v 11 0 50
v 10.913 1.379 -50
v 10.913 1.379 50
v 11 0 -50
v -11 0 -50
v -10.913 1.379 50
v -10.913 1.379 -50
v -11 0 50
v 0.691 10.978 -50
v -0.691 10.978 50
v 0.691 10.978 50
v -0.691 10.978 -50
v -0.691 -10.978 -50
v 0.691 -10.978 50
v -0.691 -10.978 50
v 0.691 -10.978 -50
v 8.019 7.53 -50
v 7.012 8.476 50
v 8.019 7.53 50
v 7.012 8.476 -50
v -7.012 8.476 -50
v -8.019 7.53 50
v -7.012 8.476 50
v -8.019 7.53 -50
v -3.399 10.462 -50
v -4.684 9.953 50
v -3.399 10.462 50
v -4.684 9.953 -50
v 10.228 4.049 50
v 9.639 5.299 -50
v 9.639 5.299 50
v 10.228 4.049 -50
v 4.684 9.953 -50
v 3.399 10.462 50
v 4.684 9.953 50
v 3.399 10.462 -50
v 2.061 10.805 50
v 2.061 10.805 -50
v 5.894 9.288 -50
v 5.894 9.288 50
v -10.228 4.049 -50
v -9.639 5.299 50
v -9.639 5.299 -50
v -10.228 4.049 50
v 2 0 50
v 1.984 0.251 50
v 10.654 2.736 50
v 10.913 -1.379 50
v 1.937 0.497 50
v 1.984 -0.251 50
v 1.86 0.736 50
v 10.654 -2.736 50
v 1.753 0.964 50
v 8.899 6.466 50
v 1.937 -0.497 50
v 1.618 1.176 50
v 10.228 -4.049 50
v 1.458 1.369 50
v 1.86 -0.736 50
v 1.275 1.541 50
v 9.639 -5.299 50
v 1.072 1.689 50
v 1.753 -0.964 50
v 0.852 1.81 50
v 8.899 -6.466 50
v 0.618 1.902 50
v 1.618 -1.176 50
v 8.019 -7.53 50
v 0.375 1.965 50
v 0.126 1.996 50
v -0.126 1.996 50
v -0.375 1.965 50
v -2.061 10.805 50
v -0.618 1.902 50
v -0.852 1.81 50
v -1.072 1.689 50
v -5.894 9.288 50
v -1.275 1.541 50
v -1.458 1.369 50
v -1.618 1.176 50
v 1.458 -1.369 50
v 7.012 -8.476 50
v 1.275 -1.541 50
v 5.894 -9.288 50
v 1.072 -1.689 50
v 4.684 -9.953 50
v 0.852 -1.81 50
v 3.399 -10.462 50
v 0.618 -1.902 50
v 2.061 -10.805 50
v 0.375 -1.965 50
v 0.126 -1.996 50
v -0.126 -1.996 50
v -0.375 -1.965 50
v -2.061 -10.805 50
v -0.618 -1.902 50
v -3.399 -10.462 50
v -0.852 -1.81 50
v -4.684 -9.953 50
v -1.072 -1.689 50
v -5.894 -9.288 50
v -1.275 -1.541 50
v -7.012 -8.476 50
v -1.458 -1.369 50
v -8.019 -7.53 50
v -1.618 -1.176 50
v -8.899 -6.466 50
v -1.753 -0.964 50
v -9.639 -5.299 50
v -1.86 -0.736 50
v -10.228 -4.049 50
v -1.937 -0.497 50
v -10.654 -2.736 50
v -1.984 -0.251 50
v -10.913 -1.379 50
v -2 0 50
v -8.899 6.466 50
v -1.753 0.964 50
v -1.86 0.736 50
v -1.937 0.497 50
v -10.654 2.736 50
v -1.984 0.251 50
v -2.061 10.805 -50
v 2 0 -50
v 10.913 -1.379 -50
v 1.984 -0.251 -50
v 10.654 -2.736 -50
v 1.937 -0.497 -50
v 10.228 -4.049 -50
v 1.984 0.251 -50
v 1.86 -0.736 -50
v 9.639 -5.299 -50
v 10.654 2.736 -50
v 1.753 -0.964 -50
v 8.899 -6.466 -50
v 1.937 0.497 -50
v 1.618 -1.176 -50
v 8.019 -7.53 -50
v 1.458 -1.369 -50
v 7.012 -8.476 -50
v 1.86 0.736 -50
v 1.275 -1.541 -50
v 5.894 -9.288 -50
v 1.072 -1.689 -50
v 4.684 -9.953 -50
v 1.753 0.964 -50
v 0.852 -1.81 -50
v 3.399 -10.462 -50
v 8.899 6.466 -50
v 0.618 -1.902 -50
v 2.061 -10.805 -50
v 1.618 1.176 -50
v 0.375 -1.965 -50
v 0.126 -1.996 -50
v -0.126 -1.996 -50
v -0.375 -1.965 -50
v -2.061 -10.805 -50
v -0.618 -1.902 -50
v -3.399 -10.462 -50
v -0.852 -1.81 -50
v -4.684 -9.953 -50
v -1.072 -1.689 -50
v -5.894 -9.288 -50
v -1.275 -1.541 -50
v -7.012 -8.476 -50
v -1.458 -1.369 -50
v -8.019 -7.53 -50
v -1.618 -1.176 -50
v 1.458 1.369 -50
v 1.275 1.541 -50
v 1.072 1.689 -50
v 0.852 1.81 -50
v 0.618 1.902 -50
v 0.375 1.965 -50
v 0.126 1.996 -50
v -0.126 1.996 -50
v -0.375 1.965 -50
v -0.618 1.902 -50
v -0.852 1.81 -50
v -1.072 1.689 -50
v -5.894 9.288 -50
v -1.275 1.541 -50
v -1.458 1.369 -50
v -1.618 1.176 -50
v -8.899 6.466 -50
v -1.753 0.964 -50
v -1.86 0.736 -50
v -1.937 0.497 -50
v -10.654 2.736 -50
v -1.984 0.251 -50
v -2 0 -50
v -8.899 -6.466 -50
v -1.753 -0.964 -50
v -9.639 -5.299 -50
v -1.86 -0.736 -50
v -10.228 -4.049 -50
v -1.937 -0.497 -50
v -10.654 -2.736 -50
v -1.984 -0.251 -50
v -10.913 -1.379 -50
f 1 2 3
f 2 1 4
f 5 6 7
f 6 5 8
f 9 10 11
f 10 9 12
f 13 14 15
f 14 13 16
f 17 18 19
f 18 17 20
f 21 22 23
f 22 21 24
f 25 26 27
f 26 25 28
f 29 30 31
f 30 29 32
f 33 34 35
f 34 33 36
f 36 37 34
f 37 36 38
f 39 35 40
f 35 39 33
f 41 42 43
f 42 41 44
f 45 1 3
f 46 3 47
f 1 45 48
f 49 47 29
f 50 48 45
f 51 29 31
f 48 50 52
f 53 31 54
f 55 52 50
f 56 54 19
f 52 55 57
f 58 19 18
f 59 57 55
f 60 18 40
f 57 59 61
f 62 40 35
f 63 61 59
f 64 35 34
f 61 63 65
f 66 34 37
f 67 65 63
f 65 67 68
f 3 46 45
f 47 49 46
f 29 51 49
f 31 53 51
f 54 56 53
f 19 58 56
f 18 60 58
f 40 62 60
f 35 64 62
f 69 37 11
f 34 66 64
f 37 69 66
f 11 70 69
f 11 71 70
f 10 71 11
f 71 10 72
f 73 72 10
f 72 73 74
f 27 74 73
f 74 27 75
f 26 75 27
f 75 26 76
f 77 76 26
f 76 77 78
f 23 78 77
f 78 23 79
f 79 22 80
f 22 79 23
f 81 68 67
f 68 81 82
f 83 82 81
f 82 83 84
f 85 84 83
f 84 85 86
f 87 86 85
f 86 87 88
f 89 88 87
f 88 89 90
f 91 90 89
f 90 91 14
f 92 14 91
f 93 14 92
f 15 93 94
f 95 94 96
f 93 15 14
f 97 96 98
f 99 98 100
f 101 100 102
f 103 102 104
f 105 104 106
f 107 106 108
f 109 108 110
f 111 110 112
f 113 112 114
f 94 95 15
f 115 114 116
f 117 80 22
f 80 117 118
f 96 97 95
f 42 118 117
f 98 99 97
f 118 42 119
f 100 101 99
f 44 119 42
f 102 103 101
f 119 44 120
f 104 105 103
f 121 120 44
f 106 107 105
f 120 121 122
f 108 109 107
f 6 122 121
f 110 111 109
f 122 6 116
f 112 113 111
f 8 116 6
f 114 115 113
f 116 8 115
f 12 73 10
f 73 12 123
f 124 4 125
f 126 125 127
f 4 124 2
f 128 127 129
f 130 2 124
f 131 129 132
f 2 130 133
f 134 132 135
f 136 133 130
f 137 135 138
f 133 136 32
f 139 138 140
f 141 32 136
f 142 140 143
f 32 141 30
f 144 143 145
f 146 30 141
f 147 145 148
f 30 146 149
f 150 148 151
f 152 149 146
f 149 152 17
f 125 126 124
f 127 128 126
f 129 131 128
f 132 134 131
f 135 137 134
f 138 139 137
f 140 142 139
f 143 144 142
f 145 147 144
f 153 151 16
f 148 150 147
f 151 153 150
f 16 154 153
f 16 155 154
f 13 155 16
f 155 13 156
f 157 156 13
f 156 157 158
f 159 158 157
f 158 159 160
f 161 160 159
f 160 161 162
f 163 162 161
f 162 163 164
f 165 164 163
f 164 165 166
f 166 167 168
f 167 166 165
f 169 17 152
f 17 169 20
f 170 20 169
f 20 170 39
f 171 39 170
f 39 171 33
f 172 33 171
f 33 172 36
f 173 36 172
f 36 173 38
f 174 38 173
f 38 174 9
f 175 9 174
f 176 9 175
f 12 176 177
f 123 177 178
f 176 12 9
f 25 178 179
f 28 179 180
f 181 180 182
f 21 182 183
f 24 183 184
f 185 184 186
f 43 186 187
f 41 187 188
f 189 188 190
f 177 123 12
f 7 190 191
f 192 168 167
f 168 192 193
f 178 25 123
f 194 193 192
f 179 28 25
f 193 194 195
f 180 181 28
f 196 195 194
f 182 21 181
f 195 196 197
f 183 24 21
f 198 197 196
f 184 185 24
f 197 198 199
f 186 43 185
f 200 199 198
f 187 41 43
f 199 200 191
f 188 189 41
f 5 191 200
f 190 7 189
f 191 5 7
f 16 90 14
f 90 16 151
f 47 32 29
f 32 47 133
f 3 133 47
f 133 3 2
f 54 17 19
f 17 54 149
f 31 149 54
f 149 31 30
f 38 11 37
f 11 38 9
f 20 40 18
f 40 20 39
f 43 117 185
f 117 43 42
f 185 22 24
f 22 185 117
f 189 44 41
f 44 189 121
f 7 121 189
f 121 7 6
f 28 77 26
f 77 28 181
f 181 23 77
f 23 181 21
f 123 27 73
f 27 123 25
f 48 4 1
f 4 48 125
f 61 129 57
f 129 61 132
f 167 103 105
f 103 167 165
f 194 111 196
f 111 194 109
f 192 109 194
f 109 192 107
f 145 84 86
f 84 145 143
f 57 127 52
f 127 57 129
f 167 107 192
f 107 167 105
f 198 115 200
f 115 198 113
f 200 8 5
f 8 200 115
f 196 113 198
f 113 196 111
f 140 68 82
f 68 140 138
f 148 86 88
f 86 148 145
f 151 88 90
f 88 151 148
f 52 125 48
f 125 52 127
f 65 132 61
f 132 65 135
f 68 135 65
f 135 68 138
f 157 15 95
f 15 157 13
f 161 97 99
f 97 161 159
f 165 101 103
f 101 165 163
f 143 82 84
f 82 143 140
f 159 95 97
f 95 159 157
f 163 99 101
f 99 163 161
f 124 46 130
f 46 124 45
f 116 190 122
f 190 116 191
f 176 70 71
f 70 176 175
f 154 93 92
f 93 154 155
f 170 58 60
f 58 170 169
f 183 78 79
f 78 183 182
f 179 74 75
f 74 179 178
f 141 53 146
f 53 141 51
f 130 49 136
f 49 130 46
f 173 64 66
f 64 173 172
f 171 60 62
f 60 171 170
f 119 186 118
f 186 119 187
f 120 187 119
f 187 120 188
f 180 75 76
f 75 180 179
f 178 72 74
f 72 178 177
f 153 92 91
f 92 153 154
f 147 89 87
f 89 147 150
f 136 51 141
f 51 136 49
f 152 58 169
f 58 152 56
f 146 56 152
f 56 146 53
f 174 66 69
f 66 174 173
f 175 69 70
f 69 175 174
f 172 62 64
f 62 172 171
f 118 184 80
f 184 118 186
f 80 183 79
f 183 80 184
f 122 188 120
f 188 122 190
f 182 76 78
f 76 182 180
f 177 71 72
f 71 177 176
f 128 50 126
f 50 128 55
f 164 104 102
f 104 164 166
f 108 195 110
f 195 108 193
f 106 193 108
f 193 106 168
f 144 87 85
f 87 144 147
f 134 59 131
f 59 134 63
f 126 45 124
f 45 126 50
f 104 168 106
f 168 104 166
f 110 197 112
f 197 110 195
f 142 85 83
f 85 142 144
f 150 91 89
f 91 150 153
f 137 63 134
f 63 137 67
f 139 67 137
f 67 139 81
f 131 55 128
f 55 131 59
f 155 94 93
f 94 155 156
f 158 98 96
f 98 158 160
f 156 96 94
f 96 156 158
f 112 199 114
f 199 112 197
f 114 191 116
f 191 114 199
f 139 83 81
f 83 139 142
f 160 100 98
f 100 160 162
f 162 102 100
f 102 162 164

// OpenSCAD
$fn = 50;


difference() {
	union() {
		translate(v = [0, 0, -50.0000000000]) {
			cylinder(h = 100, r = 11.0000000000);
		}
	}
	union() {
		translate(v = [0, 0, -100.0000000000]) {
			cylinder(h = 200, r = 2);
		}
	}
}
